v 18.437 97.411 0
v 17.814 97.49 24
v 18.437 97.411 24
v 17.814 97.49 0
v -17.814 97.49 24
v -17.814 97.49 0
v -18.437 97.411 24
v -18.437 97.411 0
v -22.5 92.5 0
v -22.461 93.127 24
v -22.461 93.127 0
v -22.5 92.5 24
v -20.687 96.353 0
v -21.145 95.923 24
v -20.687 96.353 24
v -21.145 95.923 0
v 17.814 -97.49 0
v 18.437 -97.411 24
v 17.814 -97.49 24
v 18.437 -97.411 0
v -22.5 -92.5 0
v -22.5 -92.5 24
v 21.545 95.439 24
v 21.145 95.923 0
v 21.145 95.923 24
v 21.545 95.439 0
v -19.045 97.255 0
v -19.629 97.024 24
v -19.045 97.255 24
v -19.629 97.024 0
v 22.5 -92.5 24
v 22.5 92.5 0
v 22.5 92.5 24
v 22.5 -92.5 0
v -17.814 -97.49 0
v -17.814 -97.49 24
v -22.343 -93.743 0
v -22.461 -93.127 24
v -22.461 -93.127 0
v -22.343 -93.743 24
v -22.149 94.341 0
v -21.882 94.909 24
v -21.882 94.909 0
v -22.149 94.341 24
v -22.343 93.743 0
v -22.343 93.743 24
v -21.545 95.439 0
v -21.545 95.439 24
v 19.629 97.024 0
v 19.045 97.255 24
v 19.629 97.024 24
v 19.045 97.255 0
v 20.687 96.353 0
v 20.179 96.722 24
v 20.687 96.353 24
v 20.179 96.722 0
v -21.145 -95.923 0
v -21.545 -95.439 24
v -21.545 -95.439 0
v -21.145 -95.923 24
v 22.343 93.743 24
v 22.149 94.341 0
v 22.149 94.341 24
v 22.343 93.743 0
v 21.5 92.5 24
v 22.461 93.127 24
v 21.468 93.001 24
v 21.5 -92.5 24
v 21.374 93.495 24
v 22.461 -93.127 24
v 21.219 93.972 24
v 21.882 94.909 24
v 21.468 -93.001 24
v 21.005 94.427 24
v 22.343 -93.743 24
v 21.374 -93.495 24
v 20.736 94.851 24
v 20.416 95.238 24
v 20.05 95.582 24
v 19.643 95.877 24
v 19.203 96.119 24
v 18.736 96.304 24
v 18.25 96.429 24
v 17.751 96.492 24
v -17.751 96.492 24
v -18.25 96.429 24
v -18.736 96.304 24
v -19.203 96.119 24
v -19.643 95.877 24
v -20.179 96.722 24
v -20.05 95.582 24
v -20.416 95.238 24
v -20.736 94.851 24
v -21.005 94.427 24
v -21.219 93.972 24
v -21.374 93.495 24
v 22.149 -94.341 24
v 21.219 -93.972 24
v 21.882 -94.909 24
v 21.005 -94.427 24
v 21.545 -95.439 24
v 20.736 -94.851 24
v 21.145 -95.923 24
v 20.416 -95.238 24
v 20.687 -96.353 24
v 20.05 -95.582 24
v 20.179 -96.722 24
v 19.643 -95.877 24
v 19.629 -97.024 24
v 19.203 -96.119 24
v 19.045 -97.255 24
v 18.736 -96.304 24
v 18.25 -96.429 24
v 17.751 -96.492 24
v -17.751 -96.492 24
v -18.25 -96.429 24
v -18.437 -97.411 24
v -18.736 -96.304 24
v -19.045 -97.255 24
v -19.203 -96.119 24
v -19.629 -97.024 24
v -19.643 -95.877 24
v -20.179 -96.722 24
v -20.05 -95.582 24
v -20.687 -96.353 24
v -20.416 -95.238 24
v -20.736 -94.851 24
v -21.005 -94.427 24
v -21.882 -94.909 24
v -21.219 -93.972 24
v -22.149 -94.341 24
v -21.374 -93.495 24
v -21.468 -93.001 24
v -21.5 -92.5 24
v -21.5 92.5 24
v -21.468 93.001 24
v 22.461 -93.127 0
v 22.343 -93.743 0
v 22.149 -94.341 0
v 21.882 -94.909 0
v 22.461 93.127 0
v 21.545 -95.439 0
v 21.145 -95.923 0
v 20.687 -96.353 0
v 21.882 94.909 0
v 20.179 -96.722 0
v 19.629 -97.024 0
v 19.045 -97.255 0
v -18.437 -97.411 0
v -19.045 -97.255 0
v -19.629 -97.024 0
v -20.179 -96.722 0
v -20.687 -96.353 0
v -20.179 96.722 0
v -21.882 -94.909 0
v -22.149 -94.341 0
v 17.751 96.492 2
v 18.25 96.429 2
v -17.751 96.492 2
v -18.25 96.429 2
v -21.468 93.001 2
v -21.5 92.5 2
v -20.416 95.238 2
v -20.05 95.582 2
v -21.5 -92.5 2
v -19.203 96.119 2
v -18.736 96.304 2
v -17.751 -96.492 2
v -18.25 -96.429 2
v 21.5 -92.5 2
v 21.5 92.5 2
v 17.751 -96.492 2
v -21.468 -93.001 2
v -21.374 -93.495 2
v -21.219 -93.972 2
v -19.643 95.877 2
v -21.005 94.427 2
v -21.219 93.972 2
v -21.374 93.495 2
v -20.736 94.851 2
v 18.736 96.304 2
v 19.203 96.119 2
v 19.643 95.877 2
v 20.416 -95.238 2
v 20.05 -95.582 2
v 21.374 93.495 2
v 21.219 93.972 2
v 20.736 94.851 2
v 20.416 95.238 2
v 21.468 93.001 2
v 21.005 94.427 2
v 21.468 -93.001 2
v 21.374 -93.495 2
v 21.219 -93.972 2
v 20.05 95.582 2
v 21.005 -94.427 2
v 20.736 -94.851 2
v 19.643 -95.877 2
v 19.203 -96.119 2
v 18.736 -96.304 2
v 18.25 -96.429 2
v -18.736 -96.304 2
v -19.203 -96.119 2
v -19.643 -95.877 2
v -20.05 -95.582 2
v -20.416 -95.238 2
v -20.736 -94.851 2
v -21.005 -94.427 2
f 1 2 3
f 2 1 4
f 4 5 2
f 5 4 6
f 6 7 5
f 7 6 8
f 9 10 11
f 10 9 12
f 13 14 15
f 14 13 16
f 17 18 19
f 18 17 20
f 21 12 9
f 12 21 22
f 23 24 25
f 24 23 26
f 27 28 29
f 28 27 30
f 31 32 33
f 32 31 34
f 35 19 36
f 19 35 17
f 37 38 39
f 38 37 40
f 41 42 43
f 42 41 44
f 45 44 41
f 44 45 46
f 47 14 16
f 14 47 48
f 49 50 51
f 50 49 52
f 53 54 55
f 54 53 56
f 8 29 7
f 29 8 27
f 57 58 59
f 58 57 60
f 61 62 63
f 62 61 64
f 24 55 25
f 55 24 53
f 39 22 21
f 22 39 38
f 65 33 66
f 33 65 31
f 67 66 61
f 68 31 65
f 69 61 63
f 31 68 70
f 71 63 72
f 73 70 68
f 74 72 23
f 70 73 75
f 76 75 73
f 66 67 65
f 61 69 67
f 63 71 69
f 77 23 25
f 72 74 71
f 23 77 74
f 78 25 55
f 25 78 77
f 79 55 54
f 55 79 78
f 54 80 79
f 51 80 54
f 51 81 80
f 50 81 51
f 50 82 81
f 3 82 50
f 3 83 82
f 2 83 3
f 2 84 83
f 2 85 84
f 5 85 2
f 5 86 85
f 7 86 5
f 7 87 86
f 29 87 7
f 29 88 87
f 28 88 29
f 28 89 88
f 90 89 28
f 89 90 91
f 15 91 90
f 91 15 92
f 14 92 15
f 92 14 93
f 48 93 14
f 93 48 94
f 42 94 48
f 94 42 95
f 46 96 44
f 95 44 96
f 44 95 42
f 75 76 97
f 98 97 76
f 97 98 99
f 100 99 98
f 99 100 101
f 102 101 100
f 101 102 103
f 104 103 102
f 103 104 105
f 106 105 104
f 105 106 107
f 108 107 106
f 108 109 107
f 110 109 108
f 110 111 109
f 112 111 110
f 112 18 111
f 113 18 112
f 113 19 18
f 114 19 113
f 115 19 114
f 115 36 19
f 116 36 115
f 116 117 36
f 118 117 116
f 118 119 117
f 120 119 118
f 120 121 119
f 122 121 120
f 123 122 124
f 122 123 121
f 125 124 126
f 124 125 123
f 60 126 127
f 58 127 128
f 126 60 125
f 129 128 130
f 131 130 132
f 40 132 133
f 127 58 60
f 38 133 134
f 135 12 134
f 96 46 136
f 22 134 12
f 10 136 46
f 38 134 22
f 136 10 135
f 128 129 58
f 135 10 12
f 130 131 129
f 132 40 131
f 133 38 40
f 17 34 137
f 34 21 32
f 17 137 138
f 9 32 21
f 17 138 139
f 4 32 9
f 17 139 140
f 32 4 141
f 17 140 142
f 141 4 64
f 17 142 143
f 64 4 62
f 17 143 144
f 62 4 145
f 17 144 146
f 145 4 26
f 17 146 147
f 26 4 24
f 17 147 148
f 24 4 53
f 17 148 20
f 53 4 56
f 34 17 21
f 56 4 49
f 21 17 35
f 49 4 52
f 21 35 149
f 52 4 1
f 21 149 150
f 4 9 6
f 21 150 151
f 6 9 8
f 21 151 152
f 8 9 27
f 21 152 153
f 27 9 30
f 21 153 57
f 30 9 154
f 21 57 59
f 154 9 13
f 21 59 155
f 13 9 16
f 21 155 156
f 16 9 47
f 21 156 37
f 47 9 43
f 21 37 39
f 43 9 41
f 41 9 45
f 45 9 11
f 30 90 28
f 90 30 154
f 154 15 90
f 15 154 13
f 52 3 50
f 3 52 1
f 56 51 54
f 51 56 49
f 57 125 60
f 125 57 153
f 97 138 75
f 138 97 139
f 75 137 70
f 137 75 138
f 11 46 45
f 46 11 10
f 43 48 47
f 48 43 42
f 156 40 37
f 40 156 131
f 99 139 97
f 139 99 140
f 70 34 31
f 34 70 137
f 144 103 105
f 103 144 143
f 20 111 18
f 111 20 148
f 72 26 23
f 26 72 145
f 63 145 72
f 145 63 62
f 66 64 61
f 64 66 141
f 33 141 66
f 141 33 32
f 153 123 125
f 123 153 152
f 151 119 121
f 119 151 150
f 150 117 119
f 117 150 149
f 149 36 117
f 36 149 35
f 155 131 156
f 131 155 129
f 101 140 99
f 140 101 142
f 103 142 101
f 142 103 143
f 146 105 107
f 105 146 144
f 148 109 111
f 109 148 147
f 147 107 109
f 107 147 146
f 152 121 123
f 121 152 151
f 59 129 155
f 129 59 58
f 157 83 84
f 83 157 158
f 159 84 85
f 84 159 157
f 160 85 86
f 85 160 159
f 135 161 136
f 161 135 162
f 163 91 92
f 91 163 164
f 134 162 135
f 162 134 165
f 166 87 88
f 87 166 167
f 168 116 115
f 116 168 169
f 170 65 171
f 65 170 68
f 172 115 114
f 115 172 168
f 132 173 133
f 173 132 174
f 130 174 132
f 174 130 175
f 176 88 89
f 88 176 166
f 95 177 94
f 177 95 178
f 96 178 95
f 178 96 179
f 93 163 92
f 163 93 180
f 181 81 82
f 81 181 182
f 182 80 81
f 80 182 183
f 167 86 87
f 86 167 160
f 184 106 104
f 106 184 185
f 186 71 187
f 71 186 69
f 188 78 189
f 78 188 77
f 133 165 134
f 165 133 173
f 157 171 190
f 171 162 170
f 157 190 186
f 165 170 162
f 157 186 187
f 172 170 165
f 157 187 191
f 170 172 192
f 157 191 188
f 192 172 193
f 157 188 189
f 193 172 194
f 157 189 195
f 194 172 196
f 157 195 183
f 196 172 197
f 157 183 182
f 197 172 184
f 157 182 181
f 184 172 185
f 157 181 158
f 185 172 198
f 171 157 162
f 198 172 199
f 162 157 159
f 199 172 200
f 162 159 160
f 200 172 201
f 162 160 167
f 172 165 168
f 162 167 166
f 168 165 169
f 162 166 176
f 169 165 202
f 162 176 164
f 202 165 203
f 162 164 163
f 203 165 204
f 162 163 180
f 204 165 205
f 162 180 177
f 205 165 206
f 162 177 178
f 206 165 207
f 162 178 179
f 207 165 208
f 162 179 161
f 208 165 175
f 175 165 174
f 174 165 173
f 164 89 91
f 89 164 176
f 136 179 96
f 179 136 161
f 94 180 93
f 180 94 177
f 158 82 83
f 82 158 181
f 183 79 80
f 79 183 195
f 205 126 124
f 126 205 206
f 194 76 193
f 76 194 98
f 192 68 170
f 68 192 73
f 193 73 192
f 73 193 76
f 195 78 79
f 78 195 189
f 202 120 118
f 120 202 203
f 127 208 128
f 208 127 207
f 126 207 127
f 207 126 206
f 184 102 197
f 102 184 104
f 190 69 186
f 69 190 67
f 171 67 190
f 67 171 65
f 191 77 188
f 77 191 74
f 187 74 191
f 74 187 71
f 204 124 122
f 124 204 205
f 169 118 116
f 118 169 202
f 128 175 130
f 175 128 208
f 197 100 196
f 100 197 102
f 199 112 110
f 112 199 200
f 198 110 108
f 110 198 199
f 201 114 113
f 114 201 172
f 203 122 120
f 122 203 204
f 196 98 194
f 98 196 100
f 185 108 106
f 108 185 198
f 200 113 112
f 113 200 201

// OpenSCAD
$fn = 50;


difference() {
	union() {
		hull() {
			translate(v = [-17.5000000000, 92.5000000000, 0]) {
				cylinder(h = 24, r = 5);
			}
			translate(v = [17.5000000000, 92.5000000000, 0]) {
				cylinder(h = 24, r = 5);
			}
			translate(v = [-17.5000000000, -92.5000000000, 0]) {
				cylinder(h = 24, r = 5);
			}
			translate(v = [17.5000000000, -92.5000000000, 0]) {
				cylinder(h = 24, r = 5);
			}
		}
	}
	union() {
		translate(v = [0, 0, 2]) {
			hull() {
				translate(v = [-17.5000000000, 92.5000000000, 0]) {
					cylinder(h = 22, r = 4);
				}
				translate(v = [17.5000000000, 92.5000000000, 0]) {
					cylinder(h = 22, r = 4);
				}
				translate(v = [-17.5000000000, -92.5000000000, 0]) {
					cylinder(h = 22, r = 4);
				}
				translate(v = [17.5000000000, -92.5000000000, 0]) {
					cylinder(h = 22, r = 4);
				}
			}
		}
	}
}
